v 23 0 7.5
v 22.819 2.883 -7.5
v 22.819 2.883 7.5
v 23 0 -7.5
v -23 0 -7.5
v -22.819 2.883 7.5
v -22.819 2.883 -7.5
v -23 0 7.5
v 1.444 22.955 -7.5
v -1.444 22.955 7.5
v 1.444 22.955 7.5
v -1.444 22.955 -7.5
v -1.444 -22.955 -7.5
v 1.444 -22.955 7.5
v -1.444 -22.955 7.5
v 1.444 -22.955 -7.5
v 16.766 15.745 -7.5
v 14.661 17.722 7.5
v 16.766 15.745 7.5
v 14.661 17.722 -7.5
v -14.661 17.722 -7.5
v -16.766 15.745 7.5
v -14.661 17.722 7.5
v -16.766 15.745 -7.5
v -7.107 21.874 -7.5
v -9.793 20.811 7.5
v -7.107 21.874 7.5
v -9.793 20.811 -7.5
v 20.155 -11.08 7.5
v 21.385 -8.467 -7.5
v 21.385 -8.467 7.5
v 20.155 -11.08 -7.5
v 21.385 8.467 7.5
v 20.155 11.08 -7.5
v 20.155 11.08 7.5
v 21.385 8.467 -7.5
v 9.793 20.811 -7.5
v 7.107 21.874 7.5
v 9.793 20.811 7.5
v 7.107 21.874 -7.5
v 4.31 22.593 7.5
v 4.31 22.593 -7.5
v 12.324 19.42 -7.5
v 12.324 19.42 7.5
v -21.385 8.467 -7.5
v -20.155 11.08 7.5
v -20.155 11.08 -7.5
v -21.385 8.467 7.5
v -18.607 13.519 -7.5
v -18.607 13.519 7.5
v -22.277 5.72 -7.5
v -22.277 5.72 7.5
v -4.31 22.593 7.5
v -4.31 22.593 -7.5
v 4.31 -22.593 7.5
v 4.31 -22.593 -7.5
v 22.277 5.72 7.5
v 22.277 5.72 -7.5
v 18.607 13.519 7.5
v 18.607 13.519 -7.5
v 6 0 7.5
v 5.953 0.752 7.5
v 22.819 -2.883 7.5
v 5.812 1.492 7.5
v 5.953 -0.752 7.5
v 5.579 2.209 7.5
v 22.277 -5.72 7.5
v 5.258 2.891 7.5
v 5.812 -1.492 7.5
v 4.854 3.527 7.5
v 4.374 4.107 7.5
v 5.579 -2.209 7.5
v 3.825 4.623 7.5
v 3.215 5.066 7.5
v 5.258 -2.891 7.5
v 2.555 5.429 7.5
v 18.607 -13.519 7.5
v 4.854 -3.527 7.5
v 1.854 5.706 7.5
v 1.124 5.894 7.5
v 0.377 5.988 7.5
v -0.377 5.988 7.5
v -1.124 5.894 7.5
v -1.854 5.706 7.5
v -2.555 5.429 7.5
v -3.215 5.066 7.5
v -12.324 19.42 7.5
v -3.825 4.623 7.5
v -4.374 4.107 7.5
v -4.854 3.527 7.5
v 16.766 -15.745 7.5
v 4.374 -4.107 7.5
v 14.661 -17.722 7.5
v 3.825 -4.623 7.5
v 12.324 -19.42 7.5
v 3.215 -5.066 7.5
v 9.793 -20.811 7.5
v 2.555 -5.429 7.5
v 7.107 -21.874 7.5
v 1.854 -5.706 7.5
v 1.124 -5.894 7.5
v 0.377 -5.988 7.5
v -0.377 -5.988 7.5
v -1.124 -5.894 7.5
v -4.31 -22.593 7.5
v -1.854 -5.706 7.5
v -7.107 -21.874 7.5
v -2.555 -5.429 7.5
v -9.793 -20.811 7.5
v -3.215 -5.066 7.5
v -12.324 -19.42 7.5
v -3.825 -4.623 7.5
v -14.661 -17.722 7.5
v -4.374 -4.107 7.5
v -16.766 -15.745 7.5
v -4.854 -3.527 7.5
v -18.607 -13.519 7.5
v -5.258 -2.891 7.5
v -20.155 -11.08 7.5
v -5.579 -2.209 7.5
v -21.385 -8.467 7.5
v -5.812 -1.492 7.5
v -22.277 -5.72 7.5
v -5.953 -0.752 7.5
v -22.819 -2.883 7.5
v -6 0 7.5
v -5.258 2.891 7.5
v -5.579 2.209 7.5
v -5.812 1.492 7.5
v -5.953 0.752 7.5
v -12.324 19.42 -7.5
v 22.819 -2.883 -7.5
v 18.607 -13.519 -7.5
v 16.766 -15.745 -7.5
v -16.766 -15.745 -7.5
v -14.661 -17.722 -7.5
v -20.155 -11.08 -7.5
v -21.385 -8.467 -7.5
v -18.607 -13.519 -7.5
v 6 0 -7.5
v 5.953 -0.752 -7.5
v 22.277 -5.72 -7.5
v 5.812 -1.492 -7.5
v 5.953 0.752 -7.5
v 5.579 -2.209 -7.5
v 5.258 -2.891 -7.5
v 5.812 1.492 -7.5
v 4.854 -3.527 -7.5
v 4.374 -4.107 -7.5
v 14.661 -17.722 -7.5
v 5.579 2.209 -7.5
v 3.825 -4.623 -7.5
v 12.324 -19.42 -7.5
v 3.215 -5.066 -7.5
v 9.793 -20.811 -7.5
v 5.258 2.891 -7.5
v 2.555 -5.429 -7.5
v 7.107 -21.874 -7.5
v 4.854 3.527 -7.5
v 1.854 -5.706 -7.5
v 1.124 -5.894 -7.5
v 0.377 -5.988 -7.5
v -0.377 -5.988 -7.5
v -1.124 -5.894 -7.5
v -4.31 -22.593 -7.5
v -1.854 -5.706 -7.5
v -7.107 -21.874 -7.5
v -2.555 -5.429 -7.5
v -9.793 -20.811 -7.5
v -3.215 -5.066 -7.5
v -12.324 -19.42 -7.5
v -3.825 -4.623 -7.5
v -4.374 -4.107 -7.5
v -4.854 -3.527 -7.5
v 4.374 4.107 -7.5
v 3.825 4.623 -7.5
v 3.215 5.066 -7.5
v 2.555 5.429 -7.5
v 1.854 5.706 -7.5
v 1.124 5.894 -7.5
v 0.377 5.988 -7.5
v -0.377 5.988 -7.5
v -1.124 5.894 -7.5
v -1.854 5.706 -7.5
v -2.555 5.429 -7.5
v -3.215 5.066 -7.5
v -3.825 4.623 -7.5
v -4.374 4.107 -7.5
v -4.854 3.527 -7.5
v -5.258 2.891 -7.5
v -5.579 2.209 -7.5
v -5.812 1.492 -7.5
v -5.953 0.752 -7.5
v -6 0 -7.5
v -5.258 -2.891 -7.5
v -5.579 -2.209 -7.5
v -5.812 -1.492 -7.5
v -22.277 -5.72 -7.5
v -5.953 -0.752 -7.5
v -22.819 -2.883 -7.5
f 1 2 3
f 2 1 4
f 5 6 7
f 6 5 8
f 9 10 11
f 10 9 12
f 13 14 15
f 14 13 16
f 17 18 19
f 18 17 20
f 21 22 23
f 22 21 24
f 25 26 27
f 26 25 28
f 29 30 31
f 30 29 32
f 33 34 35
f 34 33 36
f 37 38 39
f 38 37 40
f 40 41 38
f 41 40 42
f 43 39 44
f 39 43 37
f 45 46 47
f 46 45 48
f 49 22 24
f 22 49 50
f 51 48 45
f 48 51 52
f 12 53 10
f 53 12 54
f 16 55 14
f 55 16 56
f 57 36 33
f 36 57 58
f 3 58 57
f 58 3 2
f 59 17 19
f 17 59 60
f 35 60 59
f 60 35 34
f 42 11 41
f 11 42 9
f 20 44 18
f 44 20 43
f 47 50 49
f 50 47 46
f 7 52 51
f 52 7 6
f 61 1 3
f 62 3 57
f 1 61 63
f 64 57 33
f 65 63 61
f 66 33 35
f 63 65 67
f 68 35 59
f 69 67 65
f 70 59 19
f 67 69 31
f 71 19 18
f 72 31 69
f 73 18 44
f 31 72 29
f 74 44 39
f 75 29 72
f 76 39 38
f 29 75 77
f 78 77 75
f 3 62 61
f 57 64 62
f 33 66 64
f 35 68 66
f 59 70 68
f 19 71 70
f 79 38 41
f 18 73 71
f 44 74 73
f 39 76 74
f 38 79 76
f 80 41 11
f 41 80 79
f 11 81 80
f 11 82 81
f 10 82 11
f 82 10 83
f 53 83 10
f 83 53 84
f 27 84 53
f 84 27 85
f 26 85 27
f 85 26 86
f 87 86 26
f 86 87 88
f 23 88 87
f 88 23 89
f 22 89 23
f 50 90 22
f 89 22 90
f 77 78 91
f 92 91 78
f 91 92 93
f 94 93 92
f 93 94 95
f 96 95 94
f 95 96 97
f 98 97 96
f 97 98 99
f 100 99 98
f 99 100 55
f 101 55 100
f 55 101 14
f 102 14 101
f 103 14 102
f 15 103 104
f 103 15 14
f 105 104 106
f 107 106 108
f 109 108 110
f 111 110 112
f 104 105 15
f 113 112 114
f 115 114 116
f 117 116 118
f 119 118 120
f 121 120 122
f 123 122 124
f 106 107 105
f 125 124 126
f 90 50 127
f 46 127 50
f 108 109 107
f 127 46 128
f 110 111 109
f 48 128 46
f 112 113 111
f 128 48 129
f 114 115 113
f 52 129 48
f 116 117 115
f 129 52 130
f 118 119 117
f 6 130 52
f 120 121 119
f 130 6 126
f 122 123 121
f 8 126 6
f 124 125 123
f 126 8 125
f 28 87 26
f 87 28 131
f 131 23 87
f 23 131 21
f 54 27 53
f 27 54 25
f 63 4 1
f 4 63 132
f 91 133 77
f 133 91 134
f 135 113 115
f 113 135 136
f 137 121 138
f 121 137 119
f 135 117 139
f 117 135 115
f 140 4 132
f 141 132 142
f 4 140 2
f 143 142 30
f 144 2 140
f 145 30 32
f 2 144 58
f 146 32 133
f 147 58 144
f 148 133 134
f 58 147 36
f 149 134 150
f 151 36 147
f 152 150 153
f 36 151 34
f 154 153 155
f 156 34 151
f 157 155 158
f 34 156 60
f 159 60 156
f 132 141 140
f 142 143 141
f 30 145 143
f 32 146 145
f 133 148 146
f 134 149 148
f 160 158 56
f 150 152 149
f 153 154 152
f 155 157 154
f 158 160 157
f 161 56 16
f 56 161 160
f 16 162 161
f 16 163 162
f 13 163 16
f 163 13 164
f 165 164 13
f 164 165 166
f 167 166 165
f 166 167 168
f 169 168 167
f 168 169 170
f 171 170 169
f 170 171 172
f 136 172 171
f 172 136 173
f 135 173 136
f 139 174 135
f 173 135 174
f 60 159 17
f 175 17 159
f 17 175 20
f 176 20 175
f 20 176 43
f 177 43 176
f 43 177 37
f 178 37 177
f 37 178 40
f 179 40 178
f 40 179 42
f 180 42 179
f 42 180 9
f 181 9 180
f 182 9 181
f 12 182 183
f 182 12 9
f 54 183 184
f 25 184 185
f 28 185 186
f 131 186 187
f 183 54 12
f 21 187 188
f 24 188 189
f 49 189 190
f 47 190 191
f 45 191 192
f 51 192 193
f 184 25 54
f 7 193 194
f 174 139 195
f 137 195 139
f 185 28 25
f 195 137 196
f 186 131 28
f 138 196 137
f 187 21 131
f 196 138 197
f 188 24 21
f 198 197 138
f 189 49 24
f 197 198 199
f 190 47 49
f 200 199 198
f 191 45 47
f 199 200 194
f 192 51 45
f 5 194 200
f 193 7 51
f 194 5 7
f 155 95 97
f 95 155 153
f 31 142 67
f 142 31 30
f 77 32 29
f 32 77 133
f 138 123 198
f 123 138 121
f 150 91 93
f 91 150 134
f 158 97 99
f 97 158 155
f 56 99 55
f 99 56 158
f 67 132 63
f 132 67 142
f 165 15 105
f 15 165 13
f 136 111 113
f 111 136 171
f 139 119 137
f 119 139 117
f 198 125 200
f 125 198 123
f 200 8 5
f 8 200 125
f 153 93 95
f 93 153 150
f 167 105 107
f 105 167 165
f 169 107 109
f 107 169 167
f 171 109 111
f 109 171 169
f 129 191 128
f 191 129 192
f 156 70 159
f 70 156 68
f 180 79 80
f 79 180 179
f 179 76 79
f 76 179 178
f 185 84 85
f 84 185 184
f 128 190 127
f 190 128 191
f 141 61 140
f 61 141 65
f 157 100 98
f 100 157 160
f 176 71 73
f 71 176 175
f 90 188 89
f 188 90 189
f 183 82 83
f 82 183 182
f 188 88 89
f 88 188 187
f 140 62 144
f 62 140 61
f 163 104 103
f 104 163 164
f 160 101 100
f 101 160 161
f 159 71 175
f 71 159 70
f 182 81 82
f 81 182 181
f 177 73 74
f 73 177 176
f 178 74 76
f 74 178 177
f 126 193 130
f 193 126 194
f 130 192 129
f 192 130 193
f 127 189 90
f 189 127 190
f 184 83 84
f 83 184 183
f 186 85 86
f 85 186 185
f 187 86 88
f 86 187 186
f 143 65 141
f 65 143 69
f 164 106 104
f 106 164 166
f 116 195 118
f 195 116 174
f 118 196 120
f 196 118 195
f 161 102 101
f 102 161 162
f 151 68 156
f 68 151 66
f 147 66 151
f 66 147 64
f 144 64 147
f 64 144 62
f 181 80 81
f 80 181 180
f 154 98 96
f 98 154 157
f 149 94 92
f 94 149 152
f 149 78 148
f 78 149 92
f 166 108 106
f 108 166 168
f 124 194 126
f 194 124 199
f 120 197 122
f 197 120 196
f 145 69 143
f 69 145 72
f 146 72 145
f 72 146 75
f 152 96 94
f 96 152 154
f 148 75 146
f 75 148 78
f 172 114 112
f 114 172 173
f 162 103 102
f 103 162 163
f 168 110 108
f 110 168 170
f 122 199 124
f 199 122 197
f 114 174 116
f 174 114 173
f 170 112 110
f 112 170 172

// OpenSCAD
$fn = 50;


difference() {
	union() {
		translate(v = [0, 0, -7.5000000000]) {
			cylinder(h = 15, r = 23.0000000000);
		}
	}
	union() {
		translate(v = [0, 0, -100.0000000000]) {
			cylinder(h = 200, r = 6);
		}
	}
}
